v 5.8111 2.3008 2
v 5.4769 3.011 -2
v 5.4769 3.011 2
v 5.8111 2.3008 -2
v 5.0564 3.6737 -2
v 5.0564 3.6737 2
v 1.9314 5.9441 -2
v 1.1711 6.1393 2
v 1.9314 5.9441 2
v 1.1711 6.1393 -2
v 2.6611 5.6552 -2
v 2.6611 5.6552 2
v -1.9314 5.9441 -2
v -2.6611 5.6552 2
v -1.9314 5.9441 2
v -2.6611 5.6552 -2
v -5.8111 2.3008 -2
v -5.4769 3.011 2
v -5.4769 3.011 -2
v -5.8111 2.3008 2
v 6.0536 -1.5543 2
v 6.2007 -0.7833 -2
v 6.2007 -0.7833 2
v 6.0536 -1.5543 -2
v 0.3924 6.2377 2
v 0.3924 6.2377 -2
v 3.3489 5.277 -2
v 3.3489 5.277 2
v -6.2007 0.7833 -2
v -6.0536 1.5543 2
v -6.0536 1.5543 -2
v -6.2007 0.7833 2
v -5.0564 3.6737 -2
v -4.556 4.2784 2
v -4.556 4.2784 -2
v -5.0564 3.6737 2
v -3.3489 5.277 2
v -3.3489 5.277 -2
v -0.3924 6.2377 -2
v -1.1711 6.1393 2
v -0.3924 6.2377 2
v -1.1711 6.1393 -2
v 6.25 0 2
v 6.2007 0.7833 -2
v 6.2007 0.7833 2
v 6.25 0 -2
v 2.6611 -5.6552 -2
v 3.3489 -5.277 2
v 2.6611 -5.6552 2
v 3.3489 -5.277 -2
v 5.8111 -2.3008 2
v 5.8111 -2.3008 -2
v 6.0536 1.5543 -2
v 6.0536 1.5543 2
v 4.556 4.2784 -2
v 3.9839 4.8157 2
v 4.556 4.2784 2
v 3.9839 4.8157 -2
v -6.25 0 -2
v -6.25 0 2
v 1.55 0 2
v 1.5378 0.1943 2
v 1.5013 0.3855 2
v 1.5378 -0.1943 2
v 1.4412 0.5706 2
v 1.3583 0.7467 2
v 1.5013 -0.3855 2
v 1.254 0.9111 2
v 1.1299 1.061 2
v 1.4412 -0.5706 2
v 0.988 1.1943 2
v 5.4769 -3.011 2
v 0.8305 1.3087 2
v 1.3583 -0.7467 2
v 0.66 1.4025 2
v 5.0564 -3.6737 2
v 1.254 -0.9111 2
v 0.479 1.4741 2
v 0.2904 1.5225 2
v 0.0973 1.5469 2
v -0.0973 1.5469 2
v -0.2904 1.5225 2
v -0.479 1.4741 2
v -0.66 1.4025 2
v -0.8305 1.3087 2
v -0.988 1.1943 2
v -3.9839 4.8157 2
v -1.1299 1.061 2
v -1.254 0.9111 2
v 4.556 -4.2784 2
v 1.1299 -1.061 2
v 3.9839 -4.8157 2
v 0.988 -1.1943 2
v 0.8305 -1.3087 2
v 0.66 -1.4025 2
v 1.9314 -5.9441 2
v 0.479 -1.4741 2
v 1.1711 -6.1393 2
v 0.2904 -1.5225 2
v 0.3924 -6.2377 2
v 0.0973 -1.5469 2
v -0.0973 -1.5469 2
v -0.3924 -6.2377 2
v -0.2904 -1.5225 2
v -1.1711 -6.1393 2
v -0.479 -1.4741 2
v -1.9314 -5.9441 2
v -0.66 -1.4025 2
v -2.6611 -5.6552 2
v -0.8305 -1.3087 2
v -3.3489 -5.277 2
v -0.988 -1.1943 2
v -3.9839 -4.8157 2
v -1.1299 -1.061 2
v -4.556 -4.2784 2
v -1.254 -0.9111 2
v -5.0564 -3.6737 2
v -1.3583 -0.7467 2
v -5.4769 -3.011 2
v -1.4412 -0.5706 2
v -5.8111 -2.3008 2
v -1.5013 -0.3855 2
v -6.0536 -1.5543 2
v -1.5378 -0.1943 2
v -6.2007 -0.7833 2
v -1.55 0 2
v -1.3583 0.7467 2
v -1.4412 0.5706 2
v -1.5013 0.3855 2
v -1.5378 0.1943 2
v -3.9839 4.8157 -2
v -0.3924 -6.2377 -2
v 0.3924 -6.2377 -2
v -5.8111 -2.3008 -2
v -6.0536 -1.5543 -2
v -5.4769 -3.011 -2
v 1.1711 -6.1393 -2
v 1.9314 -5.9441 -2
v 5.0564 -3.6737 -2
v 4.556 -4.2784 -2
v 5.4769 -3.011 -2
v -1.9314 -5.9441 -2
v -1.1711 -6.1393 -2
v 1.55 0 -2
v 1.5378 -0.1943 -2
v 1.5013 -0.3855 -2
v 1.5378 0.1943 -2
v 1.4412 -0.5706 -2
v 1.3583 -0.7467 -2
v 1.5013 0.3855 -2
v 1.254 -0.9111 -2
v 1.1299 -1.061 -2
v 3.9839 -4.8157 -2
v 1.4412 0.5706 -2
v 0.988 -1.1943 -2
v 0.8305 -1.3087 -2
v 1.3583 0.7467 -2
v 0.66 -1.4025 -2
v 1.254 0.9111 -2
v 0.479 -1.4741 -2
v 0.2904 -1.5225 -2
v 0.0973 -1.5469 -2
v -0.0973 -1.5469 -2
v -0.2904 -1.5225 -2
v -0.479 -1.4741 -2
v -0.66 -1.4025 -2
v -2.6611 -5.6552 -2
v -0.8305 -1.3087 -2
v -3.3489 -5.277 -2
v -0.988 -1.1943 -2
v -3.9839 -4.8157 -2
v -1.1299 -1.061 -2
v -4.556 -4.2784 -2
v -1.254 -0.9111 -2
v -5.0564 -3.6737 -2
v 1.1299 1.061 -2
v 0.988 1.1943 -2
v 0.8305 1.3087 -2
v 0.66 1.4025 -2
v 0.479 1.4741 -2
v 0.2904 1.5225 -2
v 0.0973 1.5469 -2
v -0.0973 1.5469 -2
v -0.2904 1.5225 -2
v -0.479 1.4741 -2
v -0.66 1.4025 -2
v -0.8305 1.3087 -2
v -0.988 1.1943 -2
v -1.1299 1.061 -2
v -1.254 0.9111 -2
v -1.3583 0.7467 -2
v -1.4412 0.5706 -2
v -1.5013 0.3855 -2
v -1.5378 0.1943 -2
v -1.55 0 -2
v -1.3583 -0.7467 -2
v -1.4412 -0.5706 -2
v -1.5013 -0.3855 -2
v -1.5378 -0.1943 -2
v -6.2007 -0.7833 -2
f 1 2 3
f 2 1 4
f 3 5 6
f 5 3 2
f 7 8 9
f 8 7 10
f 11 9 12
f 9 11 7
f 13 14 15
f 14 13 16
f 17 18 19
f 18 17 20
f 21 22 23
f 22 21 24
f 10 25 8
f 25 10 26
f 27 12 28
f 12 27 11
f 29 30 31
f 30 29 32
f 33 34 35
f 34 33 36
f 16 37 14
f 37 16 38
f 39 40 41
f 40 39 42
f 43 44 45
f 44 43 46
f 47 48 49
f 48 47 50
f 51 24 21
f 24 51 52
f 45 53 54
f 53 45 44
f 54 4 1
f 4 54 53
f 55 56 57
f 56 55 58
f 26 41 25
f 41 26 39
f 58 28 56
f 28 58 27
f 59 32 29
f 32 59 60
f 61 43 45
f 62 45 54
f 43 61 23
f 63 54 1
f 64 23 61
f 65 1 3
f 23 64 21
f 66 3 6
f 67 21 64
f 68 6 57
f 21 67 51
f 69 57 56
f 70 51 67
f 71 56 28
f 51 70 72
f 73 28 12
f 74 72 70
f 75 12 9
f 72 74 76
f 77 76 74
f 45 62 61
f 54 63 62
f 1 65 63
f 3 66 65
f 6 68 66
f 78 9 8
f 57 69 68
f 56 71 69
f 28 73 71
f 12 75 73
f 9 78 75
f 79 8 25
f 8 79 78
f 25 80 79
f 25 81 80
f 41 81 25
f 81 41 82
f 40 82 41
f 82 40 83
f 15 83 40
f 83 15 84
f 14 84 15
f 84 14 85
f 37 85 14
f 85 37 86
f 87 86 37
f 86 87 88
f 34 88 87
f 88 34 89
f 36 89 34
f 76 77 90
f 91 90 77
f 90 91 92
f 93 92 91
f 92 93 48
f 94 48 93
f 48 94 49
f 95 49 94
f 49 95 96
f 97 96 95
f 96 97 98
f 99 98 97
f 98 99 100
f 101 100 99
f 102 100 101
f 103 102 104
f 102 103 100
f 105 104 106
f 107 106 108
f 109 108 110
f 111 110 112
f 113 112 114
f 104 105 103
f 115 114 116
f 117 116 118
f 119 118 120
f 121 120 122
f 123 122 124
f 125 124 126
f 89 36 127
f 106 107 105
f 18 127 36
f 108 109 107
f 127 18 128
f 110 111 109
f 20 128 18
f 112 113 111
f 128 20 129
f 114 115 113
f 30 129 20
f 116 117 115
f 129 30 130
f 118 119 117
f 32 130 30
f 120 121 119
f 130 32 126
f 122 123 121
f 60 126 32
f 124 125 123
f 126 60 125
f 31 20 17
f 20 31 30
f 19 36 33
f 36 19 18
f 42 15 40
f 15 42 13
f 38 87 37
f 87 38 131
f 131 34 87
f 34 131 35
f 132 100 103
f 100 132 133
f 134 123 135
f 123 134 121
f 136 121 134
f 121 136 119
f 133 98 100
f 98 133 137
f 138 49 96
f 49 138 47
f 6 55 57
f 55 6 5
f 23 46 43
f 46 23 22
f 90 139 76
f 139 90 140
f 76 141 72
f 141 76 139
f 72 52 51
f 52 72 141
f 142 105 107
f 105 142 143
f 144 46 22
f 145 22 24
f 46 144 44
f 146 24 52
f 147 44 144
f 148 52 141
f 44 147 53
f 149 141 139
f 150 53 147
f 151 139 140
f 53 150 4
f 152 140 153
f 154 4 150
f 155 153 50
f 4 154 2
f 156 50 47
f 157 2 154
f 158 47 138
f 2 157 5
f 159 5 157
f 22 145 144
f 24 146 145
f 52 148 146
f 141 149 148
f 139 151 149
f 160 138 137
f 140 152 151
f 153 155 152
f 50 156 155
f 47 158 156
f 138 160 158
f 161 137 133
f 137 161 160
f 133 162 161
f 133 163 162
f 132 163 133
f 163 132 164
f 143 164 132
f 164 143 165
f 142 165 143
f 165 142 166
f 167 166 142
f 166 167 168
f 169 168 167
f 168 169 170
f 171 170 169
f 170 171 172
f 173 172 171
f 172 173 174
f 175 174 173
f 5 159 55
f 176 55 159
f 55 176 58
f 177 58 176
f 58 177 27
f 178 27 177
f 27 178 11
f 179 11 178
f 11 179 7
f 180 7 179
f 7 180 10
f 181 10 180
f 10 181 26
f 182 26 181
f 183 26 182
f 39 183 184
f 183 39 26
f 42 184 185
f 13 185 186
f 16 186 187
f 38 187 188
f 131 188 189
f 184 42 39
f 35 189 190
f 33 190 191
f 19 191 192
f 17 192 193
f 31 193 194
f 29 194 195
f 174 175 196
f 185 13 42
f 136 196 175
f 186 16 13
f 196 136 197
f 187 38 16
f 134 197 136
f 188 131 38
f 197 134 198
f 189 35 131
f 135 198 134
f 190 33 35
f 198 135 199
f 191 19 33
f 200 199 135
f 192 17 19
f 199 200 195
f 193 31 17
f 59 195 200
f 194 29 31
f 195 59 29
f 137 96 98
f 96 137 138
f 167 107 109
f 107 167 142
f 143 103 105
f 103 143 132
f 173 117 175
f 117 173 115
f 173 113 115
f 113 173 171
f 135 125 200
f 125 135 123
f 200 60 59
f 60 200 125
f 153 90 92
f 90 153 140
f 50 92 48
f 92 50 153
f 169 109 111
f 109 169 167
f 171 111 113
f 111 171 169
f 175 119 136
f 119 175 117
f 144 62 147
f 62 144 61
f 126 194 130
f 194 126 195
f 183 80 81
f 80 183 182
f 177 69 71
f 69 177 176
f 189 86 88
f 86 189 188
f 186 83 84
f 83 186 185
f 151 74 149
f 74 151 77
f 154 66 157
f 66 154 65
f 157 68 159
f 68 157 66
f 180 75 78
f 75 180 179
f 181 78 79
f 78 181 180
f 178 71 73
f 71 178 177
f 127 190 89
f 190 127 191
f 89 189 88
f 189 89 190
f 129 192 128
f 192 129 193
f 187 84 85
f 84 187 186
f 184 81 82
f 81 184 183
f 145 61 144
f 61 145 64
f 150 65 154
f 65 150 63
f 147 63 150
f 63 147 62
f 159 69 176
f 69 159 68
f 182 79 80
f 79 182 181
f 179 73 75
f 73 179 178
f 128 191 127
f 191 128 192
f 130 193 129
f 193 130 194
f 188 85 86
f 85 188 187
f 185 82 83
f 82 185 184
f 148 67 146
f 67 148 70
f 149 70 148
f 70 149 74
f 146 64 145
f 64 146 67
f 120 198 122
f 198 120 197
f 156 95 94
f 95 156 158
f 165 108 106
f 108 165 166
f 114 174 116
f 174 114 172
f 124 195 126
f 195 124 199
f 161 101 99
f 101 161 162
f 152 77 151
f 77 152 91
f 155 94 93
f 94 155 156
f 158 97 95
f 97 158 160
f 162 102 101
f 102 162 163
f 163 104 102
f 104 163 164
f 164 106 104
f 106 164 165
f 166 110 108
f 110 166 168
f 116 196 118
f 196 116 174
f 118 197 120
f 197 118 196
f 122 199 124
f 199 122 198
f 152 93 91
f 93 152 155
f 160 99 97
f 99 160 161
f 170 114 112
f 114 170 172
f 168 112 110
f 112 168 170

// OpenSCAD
$fn = 50;


difference() {
	union() {
		translate(v = [0, 0, -2.0000000000]) {
			cylinder(h = 4, r = 6.2500000000);
		}
	}
	union() {
		translate(v = [0, 0, -100.0000000000]) {
			cylinder(h = 200, r = 1.5500000000);
		}
	}
}
